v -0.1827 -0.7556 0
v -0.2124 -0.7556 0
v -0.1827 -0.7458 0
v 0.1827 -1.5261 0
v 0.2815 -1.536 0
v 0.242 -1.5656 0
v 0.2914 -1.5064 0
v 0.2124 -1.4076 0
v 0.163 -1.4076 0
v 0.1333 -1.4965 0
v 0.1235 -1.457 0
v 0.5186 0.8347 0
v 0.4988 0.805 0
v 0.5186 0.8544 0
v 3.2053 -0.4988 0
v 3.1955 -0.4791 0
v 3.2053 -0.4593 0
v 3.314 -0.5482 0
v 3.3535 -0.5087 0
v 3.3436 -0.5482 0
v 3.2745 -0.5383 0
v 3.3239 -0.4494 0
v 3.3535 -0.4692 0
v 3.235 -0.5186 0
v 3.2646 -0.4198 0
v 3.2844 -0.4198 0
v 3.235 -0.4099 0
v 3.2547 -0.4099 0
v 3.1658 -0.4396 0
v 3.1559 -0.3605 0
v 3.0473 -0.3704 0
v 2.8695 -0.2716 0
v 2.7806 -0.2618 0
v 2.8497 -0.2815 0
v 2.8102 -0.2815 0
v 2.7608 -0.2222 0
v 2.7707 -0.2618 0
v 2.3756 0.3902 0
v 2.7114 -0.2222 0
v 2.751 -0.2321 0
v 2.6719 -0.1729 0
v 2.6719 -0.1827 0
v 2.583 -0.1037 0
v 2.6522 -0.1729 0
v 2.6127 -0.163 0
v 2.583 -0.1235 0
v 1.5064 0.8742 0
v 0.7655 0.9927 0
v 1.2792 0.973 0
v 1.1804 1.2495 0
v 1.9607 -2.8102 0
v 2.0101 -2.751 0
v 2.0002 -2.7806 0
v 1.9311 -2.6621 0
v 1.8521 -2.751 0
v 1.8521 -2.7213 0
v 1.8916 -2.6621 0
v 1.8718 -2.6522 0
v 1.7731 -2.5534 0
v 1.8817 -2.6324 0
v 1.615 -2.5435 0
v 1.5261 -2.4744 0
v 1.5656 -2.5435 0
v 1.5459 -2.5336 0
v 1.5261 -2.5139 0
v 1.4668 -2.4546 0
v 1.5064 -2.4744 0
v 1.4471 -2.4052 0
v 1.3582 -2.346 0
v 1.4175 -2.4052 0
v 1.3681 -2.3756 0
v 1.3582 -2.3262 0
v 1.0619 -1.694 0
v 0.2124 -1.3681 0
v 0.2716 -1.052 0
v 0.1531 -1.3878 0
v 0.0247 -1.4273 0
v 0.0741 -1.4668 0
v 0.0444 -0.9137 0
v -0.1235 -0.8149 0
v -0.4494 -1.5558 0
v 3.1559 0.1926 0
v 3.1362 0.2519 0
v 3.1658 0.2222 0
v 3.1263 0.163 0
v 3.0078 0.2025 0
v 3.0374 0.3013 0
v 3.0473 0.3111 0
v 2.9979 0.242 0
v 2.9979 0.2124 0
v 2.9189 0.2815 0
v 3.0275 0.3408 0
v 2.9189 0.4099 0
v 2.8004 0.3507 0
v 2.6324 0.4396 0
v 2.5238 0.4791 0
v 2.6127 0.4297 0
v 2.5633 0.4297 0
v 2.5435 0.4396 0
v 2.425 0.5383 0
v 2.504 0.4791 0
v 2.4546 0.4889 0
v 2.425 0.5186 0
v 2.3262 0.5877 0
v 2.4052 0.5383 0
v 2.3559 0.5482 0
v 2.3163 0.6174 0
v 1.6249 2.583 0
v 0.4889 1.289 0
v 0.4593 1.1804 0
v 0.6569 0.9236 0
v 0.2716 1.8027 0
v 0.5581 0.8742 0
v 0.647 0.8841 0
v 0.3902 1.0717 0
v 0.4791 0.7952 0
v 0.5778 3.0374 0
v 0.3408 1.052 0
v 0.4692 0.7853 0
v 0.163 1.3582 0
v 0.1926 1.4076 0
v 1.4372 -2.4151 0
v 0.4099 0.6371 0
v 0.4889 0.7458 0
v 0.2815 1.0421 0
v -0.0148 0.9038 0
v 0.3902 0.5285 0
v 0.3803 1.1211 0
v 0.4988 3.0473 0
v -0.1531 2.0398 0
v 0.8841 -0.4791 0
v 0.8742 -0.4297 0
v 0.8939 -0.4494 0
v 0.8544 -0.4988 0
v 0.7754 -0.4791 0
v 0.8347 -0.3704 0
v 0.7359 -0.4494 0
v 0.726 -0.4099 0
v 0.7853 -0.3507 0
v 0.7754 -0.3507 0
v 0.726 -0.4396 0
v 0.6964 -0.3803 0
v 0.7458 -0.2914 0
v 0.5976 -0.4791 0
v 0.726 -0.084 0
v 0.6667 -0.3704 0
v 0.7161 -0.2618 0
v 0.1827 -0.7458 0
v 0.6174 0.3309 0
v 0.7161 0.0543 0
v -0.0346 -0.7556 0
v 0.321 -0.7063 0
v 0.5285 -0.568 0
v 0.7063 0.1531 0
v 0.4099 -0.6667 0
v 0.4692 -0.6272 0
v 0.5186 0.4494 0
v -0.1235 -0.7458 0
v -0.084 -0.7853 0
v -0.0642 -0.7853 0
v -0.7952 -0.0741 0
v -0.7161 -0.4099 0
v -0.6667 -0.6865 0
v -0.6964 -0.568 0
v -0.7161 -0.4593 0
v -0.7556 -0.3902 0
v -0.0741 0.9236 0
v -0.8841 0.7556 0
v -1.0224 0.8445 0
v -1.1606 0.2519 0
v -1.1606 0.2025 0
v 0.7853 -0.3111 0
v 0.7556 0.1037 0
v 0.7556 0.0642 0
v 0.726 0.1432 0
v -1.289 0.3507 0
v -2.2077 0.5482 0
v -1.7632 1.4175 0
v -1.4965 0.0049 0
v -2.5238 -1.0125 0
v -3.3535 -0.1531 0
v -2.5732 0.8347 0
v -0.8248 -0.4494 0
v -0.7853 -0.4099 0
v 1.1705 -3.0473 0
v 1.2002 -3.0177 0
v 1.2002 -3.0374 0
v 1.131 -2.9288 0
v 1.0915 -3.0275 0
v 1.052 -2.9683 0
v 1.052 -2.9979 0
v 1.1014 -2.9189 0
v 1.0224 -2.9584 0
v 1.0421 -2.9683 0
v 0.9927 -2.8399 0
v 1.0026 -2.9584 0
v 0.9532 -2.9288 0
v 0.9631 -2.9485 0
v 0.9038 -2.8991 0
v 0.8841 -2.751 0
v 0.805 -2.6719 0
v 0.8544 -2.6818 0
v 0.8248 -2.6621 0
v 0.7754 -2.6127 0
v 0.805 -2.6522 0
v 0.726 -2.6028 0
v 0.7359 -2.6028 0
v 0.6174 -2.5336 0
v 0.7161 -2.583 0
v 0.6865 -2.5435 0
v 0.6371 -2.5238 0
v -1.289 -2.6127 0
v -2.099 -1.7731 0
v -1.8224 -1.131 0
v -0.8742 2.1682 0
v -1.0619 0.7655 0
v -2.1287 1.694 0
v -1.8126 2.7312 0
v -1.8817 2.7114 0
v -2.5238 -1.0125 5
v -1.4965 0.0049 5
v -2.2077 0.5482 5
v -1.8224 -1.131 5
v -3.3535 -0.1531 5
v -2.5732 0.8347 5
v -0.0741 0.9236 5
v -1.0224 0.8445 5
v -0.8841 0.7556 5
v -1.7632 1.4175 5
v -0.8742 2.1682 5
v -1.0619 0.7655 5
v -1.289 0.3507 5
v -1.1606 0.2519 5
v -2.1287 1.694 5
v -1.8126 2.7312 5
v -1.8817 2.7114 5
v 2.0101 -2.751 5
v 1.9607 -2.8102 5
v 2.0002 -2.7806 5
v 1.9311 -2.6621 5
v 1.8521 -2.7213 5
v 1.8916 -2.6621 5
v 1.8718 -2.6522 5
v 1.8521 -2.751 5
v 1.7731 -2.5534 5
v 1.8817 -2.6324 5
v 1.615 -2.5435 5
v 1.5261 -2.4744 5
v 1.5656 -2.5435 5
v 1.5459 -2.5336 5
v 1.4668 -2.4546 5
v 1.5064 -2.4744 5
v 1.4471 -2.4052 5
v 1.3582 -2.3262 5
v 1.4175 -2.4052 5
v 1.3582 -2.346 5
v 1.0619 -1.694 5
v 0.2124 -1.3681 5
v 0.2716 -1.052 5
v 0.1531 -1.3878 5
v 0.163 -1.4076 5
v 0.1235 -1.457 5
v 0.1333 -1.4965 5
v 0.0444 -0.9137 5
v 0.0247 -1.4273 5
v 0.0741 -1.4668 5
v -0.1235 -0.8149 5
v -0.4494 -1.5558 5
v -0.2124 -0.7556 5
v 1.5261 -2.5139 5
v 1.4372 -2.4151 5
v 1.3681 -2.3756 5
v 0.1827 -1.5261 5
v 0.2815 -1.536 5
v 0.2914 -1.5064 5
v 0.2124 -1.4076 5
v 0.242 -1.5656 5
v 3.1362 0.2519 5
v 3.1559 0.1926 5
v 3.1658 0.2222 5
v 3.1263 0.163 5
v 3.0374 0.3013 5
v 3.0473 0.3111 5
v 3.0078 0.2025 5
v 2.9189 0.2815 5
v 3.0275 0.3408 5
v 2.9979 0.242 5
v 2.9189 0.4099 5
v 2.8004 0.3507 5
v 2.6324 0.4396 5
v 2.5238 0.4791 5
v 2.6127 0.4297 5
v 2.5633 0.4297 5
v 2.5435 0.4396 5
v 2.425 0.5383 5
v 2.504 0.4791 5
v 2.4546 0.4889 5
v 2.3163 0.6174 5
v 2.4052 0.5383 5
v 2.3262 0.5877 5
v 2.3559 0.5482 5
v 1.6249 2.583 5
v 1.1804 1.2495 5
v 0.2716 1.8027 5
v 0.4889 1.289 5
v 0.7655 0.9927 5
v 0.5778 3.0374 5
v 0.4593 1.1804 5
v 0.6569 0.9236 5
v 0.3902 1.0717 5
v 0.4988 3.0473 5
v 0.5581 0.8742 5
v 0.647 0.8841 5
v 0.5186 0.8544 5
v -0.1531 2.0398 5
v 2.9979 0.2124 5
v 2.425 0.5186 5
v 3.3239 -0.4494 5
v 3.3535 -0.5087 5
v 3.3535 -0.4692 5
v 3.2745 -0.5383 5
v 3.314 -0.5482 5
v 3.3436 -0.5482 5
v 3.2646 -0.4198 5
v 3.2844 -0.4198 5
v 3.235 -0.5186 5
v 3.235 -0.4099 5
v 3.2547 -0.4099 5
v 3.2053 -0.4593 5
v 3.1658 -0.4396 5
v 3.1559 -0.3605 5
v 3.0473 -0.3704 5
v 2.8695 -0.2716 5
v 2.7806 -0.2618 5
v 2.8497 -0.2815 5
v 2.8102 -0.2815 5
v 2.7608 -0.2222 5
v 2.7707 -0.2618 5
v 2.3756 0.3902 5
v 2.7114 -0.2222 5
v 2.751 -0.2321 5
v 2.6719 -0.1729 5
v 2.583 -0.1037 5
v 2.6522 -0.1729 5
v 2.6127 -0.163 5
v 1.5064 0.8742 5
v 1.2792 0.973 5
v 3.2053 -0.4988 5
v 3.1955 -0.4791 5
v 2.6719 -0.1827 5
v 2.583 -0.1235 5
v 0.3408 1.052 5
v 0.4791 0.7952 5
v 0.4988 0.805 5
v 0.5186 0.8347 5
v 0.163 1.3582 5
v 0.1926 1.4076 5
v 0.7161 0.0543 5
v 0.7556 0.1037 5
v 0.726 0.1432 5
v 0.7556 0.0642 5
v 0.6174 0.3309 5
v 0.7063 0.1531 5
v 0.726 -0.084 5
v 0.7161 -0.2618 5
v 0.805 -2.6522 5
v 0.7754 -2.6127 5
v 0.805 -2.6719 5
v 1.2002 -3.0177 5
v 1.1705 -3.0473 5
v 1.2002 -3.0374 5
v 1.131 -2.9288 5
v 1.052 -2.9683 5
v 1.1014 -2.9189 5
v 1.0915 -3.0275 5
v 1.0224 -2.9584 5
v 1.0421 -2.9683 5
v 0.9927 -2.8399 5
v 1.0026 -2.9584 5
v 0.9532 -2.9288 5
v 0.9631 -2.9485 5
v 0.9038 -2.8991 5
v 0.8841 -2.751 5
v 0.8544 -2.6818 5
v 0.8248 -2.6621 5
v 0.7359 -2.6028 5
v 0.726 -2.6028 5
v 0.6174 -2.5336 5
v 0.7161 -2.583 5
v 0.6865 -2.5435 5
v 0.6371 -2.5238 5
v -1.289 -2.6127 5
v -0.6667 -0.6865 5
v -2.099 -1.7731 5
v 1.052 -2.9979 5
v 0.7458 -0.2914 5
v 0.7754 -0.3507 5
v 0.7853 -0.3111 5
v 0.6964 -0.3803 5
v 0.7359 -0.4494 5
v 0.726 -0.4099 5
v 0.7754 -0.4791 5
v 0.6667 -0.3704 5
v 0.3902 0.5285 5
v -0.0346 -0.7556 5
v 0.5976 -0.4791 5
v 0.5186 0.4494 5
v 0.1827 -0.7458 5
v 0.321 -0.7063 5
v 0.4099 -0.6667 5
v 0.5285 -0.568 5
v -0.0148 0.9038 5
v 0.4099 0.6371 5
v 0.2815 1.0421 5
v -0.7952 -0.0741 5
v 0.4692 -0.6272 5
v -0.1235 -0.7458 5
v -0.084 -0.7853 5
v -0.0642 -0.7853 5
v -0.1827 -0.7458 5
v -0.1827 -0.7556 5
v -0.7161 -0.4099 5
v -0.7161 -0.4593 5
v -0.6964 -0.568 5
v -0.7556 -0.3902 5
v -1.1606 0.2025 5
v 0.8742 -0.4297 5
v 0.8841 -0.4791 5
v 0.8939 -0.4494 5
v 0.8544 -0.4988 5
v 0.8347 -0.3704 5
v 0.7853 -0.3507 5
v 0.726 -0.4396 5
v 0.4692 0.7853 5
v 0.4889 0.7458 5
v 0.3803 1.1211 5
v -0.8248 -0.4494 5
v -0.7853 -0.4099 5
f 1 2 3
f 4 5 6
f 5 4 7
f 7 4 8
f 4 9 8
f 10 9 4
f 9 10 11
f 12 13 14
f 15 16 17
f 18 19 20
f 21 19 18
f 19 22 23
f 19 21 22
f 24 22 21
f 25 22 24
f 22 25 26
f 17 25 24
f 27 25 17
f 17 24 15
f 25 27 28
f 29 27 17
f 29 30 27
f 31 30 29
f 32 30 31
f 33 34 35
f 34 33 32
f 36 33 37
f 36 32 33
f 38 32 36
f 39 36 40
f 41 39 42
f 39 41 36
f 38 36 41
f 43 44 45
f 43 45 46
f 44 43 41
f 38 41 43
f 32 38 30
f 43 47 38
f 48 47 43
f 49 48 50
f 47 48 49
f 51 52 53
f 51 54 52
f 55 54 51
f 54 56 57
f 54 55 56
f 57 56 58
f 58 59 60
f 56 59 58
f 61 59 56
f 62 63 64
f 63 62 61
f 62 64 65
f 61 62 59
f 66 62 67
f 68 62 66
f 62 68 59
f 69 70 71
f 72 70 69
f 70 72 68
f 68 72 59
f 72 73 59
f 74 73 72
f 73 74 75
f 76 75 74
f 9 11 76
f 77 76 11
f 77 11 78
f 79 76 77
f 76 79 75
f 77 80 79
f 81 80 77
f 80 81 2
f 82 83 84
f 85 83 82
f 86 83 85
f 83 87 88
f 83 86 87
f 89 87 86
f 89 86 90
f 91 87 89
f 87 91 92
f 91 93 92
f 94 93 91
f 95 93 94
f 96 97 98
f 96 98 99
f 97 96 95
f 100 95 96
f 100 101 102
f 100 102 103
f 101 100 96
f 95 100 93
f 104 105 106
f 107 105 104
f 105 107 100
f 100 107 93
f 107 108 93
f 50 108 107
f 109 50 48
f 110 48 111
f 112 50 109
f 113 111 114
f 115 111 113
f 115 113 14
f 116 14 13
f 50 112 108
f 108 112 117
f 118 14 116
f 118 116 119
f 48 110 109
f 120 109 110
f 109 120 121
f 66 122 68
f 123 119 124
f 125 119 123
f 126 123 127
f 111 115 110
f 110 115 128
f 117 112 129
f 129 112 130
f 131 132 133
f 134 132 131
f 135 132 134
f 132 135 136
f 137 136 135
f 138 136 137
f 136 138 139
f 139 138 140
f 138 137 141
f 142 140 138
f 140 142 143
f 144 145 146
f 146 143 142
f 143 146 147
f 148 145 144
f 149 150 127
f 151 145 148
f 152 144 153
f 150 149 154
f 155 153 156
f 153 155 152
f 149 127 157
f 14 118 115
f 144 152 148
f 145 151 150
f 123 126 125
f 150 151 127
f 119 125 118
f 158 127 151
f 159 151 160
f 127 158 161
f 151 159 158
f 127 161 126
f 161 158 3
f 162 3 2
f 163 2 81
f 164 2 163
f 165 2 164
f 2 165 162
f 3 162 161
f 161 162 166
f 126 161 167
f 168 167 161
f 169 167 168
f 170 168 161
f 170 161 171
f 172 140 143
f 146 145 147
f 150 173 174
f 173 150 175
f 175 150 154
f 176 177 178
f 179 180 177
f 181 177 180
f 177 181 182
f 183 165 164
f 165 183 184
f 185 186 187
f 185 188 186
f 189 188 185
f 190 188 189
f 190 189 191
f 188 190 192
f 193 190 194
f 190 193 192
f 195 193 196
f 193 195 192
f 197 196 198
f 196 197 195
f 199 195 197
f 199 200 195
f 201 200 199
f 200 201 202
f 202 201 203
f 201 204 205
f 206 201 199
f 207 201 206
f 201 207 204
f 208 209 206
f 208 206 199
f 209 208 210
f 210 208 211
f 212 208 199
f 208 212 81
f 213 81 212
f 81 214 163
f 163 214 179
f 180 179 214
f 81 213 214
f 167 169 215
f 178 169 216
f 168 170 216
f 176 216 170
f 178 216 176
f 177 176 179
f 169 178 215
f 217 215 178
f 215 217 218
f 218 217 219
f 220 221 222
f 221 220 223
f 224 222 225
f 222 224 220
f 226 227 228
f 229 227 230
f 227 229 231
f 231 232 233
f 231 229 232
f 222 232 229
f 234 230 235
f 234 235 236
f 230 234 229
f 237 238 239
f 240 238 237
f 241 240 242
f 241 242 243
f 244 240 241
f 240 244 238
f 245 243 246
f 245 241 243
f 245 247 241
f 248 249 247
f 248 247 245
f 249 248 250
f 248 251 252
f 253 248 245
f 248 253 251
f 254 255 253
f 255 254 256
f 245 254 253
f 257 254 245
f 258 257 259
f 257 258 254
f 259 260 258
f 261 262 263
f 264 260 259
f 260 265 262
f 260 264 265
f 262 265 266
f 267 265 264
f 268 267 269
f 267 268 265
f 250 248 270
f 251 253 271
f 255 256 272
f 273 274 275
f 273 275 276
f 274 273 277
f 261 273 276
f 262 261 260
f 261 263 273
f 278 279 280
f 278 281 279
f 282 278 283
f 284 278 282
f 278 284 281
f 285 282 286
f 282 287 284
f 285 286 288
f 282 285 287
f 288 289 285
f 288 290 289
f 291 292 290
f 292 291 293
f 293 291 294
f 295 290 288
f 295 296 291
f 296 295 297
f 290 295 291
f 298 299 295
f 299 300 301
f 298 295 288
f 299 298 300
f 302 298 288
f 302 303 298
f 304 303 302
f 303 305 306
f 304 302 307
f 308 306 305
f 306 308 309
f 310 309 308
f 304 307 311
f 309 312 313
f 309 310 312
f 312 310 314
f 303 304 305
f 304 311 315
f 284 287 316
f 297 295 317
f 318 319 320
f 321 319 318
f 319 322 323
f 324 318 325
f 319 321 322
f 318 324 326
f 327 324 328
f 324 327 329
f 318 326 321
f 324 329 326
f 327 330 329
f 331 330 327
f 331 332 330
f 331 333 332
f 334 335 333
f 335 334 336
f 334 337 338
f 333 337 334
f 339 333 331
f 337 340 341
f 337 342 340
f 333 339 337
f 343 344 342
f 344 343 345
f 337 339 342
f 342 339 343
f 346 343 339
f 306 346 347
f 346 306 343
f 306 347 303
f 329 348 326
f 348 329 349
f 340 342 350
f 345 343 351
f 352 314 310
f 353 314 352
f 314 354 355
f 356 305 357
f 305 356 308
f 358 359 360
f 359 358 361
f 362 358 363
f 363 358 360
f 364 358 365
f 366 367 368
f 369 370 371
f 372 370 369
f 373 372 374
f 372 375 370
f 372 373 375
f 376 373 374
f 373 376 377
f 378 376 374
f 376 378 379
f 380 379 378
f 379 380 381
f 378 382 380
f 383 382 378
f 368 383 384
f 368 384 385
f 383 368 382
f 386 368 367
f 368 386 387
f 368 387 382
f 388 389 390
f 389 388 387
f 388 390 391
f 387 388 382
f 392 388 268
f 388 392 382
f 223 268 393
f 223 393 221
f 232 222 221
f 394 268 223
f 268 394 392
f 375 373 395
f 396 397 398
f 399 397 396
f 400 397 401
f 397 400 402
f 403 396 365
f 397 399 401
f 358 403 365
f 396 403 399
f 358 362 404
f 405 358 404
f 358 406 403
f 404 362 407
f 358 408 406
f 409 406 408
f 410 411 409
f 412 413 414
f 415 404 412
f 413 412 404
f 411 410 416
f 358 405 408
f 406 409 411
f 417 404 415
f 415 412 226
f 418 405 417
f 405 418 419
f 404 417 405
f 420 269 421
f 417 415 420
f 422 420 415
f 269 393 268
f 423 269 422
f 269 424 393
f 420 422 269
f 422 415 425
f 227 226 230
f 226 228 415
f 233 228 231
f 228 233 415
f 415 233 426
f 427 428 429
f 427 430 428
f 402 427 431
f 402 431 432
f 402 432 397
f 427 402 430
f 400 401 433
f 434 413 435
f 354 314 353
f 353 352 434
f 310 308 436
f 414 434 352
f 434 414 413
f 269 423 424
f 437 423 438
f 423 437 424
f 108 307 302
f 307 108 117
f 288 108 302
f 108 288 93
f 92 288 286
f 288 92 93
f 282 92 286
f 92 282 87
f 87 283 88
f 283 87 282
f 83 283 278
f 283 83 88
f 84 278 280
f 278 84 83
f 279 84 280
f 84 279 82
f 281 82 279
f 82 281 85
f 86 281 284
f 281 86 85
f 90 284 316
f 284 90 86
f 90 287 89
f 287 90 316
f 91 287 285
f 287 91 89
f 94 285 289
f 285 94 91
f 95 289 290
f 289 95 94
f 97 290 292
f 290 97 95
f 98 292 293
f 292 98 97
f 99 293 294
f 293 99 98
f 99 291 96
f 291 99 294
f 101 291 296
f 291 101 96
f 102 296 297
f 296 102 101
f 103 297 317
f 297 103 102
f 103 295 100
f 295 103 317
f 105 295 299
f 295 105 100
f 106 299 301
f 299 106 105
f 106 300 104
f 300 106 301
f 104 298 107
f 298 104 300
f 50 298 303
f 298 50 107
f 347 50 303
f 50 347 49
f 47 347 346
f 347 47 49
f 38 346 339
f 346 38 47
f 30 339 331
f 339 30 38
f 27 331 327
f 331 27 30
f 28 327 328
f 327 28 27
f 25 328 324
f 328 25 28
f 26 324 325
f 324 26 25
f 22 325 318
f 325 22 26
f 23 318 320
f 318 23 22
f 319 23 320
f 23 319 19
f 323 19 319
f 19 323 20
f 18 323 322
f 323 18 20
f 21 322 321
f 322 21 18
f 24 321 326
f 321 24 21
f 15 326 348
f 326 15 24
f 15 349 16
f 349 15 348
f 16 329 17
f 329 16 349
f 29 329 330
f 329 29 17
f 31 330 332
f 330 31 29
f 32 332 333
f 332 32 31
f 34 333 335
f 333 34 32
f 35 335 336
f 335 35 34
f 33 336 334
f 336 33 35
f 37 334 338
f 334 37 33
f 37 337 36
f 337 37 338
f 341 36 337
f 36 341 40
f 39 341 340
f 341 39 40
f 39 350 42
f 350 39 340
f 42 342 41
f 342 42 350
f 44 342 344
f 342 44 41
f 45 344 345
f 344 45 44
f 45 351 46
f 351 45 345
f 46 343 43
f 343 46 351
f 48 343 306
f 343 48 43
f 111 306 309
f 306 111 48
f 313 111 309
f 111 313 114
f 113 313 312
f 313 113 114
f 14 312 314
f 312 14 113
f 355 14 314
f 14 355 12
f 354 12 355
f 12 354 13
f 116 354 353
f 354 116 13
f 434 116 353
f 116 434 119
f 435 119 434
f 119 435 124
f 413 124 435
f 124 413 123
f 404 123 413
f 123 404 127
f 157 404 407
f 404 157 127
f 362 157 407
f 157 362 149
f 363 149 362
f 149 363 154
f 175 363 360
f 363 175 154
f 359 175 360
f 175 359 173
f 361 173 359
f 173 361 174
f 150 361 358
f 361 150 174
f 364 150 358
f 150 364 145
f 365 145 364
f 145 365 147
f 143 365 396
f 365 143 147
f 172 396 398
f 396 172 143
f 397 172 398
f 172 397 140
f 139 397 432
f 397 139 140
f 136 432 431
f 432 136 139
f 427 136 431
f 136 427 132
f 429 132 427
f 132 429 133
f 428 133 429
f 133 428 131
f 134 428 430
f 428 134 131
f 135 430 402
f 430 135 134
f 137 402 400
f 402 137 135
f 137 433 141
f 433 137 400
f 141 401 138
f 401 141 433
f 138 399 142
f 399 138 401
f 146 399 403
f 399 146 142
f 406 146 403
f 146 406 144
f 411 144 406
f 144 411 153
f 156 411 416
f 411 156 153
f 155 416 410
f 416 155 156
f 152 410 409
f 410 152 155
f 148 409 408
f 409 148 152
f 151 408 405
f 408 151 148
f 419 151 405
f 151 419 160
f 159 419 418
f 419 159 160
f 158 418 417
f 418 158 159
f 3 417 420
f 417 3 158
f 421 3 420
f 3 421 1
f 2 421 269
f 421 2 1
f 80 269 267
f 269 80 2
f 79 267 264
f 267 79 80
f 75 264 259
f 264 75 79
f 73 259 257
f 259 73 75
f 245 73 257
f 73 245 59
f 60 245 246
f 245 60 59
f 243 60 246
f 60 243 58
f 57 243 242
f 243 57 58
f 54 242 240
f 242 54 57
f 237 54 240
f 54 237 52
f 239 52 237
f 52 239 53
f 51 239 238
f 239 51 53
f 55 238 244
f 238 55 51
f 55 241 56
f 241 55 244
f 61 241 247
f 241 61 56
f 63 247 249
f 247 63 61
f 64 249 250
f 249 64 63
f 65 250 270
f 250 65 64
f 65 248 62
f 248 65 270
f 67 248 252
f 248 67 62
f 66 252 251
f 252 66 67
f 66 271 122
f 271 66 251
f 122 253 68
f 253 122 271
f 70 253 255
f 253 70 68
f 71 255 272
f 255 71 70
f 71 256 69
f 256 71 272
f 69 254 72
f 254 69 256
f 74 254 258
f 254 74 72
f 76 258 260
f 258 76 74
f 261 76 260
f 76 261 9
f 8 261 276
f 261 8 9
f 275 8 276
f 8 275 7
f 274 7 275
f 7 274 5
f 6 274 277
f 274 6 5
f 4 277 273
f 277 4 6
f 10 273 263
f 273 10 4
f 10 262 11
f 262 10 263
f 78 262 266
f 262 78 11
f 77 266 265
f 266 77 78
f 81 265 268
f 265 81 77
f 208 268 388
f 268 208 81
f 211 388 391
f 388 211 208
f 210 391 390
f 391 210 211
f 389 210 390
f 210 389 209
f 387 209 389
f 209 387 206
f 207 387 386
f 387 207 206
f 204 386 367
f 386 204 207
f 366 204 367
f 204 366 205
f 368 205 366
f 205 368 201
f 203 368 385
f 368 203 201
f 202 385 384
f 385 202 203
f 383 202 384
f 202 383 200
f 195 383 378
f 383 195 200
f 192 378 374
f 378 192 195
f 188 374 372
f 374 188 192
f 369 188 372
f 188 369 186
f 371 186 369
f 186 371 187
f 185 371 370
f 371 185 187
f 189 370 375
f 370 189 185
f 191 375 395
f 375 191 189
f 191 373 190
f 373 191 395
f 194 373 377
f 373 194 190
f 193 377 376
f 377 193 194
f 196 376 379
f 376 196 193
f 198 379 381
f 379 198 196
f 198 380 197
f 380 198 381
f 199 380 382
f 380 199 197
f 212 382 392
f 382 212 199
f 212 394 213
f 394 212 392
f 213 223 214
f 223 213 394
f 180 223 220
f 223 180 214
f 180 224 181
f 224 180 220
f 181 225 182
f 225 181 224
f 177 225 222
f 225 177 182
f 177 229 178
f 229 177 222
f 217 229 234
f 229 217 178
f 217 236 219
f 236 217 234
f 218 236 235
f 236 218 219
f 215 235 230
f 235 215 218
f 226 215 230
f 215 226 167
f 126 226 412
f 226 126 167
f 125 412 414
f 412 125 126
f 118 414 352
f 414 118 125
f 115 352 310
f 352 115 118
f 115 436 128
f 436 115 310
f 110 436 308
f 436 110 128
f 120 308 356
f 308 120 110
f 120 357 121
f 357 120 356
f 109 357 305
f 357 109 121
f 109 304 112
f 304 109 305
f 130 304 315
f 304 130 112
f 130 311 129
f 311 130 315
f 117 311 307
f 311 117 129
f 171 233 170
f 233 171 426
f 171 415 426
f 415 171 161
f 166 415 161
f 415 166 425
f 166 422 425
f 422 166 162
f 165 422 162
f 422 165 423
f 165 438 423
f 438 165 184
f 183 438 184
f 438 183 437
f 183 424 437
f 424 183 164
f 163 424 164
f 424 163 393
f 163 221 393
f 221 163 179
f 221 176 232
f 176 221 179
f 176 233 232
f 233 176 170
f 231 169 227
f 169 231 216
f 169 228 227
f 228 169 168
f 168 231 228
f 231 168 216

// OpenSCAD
// Module names are of the form poly_<inkscape-path-id>().  As a result,
// you can associate a polygon in this OpenSCAD program with the corresponding
// SVG element in the Inkscape document by looking for the XML element with
// the attribute id="inkscape-path-id".

// fudge value is used to ensure that subtracted solids are a tad taller
// in the z dimension than the polygon being subtracted from.  This helps
// keep the resulting .stl file manifold.
fudge = 0.1;

module poly_path4194(h)
{
  scale([25.4/90, -25.4/90, 1]) union()
  {
    difference()
    {
       linear_extrude(height=h)
         polygon([[11.882500,1.802500],[11.847500,1.942500],[11.742500,1.942500],[11.602500,1.907500],[11.462500,1.837500],[11.357500,1.767500],[11.322500,1.697500],[11.357500,1.627500],[11.217500,1.557500],[10.797500,1.312500],[10.167500,0.962500],[10.097500,0.997500],[9.957500,0.997500],[9.852500,0.927500],[9.817500,0.927500],[9.782500,0.787500],[9.747500,0.822500],[9.607500,0.787500],[9.467500,0.647500],[9.467500,0.612500],[9.397500,0.612500],[9.257500,0.577500],[9.152500,0.437500],[9.152500,0.367500],[2.712500,-3.517500],[2.327500,-3.272500],[2.292500,-3.132500],[1.977500,-3.097500],[1.837500,-3.027500],[1.837500,-2.957500],[1.767500,-2.852500],[1.697500,-2.817500],[1.662500,-2.782500],[1.732500,-2.642500],[1.452500,-2.257500],[1.382500,-1.872500],[1.837500,-1.592500],[2.187500,-1.172500],[2.502500,-0.542500],[2.572500,-0.507500],[2.677500,-0.367500],[2.677500,-0.227500],[2.537500,-0.192500],[2.572500,0.297500],[2.537500,0.927500],[2.642500,1.032500],[2.712500,1.067500],[2.782500,1.102500],[2.747500,1.242500],[2.782500,1.242500],[2.957500,1.312500],[3.097500,1.522500],[3.167500,1.592500],[3.132500,1.697500],[3.027500,1.767500],[2.747500,1.697500],[2.607500,1.592500],[2.572500,1.557500],[2.572500,1.452500],[2.467500,1.347500],[2.362500,1.312500],[2.117500,1.697500],[1.872500,2.012500],[1.662500,2.222500],[1.452500,2.362500],[1.137500,2.502500],[0.647500,2.642500],[-0.122500,2.677500],[-0.227500,2.782500],[-0.297500,2.782500],[-0.437500,2.642500],[-0.647500,2.642500],[-0.647500,2.677500],[-0.752500,2.677500],[-0.437500,2.887500],[0.157500,3.237500],[0.962500,3.727500],[3.762500,6.002500],[6.282500,9.047500],[6.667500,9.327500],[6.632500,9.397500],[6.702500,9.432500],[6.807500,9.432500],[6.842500,9.432500],[7.122500,9.747500],[7.087500,9.852500],[6.947500,9.957500],[6.562500,9.747500],[6.562500,9.712500],[6.562500,9.642500],[6.422500,9.537500],[6.142500,9.327500],[5.722500,9.012500],[5.687500,9.012500],[5.547500,9.012500],[5.477500,8.977500],[5.442500,8.942500],[5.407500,8.907500],[5.407500,8.837500],[5.407500,8.767500],[5.337500,8.767500],[5.197500,8.697500],[5.092500,8.557500],[5.127500,8.522500],[5.022500,8.522500],[4.847500,8.417500],[4.812500,8.312500],[4.812500,8.242500],[0.752500,4.847500],[0.542500,4.917500],[0.577500,4.987500],[0.752500,4.987500],[1.032500,5.337500],[0.997500,5.442500],[0.857500,5.547500],[0.647500,5.407500],[0.472500,5.302500],[0.437500,5.162500],[0.262500,5.197500],[0.087500,5.057500],[-1.592500,5.512500],[2.187500,8.977500],[2.257500,8.942500],[2.432500,9.012500],[2.537500,9.152500],[2.572500,9.222500],[2.607500,9.222500],[2.747500,9.257500],[2.852500,9.397500],[2.852500,9.467500],[2.922500,9.432500],[3.027500,9.502500],[3.132500,9.747500],[3.517500,10.062500],[3.902500,10.342500],[4.007500,10.377500],[4.252500,10.692500],[4.252500,10.762500],[4.147500,10.797500],[3.867500,10.727500],[3.727500,10.622500],[3.727500,10.517500],[3.692500,10.517500],[3.622500,10.482500],[3.552500,10.482500],[3.412500,10.447500],[3.377500,10.377500],[3.202500,10.272500],[-4.567500,9.257500],[-7.437500,6.282500],[-6.457500,4.007500],[-8.942500,3.587500],[-11.882500,0.542500],[-9.117500,-2.957500],[-7.822500,-1.942500],[-6.247500,-5.022500],[-7.542500,-6.002500],[-6.667500,-9.607500],[-6.422500,-9.677500],[-3.097500,-7.682500],[-0.262500,-3.272500],[-0.052500,-3.202500],[0.997500,-3.692500],[1.207500,-3.727500],[1.382500,-3.797500],[1.347500,-3.972500],[1.627500,-4.182500],[0.577500,-4.812500],[0.682500,-4.987500],[1.732500,-4.567500],[0.962500,-6.387500],[-0.542500,-7.227500],[1.767500,-10.797500],[2.047500,-10.762500],[5.757500,-9.152500],[10.342500,-1.452500],[10.727500,-1.207500],[10.762500,-1.067500],[10.797500,-1.102500],[10.902500,-1.032500],[11.112500,-0.892500],[11.217500,-0.787500],[11.182500,-0.682500],[11.077500,-0.577500],[10.657500,-0.717500],[10.622500,-0.752500],[10.622500,-0.857500],[10.342500,-0.997500],[9.922500,-1.242500],[9.327500,-1.557500],[9.257500,-1.522500],[9.082500,-1.522500],[9.012500,-1.557500],[8.977500,-1.627500],[8.942500,-1.697500],[8.872500,-1.697500],[8.697500,-1.732500],[8.592500,-1.837500],[8.592500,-1.907500],[8.522500,-1.907500],[8.347500,-1.942500],[8.242500,-2.082500],[8.207500,-2.187500],[4.182500,-4.427500],[4.532500,-3.447500],[5.337500,-3.097500],[8.417500,-1.382500],[11.182500,1.277500],[11.462500,1.452500],[11.532500,1.452500],[11.567500,1.487500],[11.637500,1.487500],[11.777500,1.592500],[11.882500,1.662500],[11.882500,1.802500]]);
       translate([0, 0, -fudge])
         linear_extrude(height=h+2*fudge)
           polygon([[-2.362500,2.432500],[-2.467500,2.012500],[-2.922500,1.592500],[-2.782500,1.452500],[-2.537500,1.627500],[-2.537500,1.452500],[-2.677500,1.382500],[-2.817500,0.262500],[-4.112500,-0.717500],[-4.112500,-0.892500],[-4.567500,-1.242500],[-5.302500,-0.017500],[-2.362500,2.432500]]);
       translate([0, 0, -fudge])
         linear_extrude(height=h+2*fudge)
           polygon([[-3.762500,-2.712500],[-3.132500,-2.677500],[-3.622500,-2.992500],[-3.762500,-2.712500]]);
    }
  }
}

poly_path4194(5);
